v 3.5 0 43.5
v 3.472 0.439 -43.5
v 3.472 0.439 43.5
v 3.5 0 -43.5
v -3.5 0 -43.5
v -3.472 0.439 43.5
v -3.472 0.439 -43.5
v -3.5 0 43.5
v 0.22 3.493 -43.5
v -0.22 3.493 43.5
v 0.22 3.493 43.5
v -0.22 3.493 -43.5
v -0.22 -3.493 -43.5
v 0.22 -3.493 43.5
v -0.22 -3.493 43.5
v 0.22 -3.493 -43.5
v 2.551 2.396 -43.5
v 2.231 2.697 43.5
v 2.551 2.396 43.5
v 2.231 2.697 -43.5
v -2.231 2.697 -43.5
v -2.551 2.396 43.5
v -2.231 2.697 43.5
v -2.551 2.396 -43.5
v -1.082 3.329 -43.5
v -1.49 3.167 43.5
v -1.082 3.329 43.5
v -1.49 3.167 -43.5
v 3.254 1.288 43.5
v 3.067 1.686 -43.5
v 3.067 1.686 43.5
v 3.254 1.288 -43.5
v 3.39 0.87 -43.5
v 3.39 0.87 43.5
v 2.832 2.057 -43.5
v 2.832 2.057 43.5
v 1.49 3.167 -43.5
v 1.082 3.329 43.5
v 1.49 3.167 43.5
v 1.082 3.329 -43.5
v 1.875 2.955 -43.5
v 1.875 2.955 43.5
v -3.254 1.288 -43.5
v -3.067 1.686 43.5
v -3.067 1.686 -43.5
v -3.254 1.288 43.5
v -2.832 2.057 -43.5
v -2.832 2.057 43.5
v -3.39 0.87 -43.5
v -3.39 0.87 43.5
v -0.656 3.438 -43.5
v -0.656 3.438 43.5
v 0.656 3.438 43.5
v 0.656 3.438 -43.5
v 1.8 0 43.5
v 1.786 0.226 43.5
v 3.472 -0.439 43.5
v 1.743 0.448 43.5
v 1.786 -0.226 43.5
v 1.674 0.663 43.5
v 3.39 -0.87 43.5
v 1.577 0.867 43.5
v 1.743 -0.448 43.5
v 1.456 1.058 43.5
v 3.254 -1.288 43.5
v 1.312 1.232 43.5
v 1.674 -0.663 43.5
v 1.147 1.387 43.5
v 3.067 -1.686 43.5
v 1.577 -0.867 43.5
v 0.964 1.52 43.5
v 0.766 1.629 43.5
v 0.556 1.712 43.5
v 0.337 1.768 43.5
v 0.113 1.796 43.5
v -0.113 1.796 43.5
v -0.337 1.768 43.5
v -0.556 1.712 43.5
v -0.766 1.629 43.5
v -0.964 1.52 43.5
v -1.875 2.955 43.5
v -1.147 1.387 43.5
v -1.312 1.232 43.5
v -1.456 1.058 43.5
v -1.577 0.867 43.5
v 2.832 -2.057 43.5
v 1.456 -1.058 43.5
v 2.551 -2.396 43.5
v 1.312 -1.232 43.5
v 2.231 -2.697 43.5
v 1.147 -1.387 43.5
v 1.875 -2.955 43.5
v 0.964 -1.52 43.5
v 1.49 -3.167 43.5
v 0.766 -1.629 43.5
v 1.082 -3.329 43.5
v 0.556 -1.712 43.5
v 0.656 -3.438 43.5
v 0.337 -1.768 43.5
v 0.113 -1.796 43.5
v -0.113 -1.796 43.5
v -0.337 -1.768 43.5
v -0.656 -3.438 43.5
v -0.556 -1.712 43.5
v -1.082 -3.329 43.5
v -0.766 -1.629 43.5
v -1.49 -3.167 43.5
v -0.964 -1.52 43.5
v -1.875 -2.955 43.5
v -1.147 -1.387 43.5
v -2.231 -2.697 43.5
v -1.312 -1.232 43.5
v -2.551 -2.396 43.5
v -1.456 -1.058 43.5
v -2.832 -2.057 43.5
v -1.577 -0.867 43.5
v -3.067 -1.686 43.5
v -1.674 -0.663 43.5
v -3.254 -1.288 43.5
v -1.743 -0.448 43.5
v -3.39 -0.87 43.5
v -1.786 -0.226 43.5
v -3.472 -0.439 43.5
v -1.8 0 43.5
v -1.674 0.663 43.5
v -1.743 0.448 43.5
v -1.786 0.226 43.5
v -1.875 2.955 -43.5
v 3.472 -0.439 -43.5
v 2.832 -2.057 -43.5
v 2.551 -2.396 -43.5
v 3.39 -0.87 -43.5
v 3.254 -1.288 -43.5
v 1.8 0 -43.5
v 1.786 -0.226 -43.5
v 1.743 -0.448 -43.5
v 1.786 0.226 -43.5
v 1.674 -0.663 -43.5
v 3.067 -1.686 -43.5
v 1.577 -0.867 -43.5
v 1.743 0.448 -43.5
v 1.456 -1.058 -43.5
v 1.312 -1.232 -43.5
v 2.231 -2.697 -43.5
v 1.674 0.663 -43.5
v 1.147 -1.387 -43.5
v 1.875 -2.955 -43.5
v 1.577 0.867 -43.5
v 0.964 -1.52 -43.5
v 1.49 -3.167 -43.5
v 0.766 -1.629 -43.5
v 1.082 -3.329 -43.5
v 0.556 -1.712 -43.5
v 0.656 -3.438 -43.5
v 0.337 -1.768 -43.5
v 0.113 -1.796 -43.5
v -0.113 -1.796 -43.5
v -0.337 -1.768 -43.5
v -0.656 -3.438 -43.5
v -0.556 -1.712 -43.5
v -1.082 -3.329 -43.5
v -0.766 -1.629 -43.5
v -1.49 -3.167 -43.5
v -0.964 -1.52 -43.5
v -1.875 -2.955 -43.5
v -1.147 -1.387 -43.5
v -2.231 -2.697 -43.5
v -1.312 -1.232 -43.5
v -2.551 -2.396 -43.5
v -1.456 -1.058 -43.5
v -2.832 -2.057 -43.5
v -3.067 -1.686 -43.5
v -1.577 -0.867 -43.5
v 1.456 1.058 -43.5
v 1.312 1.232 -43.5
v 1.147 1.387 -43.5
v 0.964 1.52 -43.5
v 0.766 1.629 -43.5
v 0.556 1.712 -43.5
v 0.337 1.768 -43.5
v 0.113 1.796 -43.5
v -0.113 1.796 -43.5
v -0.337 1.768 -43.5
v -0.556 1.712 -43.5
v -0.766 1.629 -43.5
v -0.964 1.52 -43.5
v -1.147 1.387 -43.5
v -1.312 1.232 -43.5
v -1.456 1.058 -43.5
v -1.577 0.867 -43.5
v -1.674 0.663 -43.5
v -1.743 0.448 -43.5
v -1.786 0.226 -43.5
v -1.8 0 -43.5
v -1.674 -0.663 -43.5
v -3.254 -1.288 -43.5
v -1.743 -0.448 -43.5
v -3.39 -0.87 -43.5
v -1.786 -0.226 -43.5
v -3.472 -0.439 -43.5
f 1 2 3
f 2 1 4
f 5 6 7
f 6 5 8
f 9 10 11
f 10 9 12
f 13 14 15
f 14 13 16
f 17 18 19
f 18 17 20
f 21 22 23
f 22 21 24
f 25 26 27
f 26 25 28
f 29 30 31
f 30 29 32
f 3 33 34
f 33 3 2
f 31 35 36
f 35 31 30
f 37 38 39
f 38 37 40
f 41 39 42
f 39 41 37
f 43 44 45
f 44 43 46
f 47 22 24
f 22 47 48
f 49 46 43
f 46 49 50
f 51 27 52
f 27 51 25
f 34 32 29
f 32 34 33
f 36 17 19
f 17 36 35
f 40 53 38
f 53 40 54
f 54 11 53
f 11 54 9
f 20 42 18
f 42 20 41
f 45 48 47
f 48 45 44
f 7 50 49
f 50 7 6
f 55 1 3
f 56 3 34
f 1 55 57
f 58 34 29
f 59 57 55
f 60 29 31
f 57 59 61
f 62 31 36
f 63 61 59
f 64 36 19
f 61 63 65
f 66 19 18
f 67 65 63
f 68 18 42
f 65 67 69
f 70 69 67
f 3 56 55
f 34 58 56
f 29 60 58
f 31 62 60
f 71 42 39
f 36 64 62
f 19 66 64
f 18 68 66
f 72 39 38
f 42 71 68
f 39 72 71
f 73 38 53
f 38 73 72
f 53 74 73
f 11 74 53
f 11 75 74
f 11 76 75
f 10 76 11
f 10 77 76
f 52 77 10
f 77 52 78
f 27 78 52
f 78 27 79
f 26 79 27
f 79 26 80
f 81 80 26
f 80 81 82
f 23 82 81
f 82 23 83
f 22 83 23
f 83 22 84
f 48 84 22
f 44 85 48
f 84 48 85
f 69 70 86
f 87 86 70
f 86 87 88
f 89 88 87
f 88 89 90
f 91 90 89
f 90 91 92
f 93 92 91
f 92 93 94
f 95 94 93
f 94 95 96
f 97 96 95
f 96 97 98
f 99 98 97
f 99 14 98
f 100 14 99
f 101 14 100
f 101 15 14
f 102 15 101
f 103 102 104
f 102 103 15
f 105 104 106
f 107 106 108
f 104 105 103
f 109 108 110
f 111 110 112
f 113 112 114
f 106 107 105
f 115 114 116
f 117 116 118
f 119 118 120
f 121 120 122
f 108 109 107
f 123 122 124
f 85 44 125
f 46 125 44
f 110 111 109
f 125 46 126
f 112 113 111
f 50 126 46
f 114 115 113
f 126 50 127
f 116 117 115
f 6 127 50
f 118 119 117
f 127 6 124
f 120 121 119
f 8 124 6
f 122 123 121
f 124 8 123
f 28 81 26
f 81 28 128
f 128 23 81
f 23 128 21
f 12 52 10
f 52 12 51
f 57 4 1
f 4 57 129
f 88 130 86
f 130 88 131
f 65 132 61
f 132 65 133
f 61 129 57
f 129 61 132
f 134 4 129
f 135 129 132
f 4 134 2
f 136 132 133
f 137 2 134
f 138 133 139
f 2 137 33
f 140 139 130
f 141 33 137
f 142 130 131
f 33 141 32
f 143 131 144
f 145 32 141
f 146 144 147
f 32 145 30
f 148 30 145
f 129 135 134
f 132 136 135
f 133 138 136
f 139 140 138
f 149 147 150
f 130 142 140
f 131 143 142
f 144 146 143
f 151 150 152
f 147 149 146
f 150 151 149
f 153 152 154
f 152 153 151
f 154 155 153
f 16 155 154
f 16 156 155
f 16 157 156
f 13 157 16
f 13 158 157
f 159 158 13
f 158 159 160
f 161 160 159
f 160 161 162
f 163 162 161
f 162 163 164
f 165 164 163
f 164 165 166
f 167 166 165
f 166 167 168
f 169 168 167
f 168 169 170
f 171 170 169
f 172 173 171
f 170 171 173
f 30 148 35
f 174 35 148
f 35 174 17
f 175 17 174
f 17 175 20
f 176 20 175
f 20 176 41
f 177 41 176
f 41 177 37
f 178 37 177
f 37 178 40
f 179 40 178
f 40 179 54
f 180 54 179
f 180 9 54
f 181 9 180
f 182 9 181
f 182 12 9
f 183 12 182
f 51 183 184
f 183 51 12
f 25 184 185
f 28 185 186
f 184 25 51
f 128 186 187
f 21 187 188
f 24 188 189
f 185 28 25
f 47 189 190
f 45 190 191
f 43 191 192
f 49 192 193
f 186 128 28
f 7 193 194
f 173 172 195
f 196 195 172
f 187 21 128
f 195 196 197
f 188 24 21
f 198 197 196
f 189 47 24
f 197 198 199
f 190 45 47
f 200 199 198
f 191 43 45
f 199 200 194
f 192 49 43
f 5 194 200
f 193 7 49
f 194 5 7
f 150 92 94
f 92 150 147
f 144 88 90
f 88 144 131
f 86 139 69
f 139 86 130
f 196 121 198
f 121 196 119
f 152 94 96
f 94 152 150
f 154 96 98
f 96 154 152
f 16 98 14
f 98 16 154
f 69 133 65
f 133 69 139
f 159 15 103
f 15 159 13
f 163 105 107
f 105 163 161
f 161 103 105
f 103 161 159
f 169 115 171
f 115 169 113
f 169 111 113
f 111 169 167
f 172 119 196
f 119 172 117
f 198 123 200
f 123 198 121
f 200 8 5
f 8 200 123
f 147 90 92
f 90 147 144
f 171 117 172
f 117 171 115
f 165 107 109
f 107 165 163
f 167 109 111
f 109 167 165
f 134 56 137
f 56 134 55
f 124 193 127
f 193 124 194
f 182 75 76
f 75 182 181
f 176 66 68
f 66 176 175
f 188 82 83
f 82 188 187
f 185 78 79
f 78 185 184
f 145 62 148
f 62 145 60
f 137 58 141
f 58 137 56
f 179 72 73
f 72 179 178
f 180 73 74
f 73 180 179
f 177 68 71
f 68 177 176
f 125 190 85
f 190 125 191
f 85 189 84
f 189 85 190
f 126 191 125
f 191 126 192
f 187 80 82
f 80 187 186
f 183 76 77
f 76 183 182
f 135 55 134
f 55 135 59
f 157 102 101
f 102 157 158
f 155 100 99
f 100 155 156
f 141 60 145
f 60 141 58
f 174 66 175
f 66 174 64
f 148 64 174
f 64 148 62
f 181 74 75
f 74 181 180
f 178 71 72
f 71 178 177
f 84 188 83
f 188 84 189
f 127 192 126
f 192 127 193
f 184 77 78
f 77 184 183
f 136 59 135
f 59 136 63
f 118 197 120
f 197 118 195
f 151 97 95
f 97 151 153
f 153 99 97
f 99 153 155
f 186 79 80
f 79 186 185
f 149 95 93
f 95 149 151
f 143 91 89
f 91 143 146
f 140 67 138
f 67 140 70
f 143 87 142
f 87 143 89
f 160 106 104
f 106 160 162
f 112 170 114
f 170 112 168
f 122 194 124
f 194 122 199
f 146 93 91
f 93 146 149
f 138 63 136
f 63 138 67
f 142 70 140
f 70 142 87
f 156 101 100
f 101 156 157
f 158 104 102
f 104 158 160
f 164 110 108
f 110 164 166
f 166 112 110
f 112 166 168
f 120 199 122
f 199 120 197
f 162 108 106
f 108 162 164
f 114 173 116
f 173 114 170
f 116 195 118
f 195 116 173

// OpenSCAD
$fn = 50;


difference() {
	union() {
		translate(v = [0, 0, -43.5000000000]) {
			cylinder(h = 87, r = 3.5000000000);
		}
	}
	union() {
		translate(v = [0, 0, -100.0000000000]) {
			cylinder(h = 200, r = 1.8000000000);
		}
	}
}
